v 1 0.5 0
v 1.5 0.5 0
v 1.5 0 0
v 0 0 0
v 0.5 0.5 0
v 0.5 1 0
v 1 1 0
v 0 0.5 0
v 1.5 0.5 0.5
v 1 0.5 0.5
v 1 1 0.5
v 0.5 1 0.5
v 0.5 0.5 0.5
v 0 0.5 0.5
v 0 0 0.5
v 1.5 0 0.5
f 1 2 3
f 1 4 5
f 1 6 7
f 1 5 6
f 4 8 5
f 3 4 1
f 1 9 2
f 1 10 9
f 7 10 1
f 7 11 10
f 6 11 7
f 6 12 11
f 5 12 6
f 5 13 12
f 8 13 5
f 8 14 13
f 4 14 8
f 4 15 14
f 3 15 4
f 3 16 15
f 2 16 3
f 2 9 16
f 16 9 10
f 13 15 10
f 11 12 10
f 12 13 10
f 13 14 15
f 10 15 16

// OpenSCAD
// Tetromino (T) for Stacks of Shapes
// by Slashee the Cow
linear_extrude(0.5)
polygon([[0,0],[1.5,0],[1.5,0.5],[1,0.5],[1,1],[0.5,1],[0.5,0.5],[0,0.5]]);
